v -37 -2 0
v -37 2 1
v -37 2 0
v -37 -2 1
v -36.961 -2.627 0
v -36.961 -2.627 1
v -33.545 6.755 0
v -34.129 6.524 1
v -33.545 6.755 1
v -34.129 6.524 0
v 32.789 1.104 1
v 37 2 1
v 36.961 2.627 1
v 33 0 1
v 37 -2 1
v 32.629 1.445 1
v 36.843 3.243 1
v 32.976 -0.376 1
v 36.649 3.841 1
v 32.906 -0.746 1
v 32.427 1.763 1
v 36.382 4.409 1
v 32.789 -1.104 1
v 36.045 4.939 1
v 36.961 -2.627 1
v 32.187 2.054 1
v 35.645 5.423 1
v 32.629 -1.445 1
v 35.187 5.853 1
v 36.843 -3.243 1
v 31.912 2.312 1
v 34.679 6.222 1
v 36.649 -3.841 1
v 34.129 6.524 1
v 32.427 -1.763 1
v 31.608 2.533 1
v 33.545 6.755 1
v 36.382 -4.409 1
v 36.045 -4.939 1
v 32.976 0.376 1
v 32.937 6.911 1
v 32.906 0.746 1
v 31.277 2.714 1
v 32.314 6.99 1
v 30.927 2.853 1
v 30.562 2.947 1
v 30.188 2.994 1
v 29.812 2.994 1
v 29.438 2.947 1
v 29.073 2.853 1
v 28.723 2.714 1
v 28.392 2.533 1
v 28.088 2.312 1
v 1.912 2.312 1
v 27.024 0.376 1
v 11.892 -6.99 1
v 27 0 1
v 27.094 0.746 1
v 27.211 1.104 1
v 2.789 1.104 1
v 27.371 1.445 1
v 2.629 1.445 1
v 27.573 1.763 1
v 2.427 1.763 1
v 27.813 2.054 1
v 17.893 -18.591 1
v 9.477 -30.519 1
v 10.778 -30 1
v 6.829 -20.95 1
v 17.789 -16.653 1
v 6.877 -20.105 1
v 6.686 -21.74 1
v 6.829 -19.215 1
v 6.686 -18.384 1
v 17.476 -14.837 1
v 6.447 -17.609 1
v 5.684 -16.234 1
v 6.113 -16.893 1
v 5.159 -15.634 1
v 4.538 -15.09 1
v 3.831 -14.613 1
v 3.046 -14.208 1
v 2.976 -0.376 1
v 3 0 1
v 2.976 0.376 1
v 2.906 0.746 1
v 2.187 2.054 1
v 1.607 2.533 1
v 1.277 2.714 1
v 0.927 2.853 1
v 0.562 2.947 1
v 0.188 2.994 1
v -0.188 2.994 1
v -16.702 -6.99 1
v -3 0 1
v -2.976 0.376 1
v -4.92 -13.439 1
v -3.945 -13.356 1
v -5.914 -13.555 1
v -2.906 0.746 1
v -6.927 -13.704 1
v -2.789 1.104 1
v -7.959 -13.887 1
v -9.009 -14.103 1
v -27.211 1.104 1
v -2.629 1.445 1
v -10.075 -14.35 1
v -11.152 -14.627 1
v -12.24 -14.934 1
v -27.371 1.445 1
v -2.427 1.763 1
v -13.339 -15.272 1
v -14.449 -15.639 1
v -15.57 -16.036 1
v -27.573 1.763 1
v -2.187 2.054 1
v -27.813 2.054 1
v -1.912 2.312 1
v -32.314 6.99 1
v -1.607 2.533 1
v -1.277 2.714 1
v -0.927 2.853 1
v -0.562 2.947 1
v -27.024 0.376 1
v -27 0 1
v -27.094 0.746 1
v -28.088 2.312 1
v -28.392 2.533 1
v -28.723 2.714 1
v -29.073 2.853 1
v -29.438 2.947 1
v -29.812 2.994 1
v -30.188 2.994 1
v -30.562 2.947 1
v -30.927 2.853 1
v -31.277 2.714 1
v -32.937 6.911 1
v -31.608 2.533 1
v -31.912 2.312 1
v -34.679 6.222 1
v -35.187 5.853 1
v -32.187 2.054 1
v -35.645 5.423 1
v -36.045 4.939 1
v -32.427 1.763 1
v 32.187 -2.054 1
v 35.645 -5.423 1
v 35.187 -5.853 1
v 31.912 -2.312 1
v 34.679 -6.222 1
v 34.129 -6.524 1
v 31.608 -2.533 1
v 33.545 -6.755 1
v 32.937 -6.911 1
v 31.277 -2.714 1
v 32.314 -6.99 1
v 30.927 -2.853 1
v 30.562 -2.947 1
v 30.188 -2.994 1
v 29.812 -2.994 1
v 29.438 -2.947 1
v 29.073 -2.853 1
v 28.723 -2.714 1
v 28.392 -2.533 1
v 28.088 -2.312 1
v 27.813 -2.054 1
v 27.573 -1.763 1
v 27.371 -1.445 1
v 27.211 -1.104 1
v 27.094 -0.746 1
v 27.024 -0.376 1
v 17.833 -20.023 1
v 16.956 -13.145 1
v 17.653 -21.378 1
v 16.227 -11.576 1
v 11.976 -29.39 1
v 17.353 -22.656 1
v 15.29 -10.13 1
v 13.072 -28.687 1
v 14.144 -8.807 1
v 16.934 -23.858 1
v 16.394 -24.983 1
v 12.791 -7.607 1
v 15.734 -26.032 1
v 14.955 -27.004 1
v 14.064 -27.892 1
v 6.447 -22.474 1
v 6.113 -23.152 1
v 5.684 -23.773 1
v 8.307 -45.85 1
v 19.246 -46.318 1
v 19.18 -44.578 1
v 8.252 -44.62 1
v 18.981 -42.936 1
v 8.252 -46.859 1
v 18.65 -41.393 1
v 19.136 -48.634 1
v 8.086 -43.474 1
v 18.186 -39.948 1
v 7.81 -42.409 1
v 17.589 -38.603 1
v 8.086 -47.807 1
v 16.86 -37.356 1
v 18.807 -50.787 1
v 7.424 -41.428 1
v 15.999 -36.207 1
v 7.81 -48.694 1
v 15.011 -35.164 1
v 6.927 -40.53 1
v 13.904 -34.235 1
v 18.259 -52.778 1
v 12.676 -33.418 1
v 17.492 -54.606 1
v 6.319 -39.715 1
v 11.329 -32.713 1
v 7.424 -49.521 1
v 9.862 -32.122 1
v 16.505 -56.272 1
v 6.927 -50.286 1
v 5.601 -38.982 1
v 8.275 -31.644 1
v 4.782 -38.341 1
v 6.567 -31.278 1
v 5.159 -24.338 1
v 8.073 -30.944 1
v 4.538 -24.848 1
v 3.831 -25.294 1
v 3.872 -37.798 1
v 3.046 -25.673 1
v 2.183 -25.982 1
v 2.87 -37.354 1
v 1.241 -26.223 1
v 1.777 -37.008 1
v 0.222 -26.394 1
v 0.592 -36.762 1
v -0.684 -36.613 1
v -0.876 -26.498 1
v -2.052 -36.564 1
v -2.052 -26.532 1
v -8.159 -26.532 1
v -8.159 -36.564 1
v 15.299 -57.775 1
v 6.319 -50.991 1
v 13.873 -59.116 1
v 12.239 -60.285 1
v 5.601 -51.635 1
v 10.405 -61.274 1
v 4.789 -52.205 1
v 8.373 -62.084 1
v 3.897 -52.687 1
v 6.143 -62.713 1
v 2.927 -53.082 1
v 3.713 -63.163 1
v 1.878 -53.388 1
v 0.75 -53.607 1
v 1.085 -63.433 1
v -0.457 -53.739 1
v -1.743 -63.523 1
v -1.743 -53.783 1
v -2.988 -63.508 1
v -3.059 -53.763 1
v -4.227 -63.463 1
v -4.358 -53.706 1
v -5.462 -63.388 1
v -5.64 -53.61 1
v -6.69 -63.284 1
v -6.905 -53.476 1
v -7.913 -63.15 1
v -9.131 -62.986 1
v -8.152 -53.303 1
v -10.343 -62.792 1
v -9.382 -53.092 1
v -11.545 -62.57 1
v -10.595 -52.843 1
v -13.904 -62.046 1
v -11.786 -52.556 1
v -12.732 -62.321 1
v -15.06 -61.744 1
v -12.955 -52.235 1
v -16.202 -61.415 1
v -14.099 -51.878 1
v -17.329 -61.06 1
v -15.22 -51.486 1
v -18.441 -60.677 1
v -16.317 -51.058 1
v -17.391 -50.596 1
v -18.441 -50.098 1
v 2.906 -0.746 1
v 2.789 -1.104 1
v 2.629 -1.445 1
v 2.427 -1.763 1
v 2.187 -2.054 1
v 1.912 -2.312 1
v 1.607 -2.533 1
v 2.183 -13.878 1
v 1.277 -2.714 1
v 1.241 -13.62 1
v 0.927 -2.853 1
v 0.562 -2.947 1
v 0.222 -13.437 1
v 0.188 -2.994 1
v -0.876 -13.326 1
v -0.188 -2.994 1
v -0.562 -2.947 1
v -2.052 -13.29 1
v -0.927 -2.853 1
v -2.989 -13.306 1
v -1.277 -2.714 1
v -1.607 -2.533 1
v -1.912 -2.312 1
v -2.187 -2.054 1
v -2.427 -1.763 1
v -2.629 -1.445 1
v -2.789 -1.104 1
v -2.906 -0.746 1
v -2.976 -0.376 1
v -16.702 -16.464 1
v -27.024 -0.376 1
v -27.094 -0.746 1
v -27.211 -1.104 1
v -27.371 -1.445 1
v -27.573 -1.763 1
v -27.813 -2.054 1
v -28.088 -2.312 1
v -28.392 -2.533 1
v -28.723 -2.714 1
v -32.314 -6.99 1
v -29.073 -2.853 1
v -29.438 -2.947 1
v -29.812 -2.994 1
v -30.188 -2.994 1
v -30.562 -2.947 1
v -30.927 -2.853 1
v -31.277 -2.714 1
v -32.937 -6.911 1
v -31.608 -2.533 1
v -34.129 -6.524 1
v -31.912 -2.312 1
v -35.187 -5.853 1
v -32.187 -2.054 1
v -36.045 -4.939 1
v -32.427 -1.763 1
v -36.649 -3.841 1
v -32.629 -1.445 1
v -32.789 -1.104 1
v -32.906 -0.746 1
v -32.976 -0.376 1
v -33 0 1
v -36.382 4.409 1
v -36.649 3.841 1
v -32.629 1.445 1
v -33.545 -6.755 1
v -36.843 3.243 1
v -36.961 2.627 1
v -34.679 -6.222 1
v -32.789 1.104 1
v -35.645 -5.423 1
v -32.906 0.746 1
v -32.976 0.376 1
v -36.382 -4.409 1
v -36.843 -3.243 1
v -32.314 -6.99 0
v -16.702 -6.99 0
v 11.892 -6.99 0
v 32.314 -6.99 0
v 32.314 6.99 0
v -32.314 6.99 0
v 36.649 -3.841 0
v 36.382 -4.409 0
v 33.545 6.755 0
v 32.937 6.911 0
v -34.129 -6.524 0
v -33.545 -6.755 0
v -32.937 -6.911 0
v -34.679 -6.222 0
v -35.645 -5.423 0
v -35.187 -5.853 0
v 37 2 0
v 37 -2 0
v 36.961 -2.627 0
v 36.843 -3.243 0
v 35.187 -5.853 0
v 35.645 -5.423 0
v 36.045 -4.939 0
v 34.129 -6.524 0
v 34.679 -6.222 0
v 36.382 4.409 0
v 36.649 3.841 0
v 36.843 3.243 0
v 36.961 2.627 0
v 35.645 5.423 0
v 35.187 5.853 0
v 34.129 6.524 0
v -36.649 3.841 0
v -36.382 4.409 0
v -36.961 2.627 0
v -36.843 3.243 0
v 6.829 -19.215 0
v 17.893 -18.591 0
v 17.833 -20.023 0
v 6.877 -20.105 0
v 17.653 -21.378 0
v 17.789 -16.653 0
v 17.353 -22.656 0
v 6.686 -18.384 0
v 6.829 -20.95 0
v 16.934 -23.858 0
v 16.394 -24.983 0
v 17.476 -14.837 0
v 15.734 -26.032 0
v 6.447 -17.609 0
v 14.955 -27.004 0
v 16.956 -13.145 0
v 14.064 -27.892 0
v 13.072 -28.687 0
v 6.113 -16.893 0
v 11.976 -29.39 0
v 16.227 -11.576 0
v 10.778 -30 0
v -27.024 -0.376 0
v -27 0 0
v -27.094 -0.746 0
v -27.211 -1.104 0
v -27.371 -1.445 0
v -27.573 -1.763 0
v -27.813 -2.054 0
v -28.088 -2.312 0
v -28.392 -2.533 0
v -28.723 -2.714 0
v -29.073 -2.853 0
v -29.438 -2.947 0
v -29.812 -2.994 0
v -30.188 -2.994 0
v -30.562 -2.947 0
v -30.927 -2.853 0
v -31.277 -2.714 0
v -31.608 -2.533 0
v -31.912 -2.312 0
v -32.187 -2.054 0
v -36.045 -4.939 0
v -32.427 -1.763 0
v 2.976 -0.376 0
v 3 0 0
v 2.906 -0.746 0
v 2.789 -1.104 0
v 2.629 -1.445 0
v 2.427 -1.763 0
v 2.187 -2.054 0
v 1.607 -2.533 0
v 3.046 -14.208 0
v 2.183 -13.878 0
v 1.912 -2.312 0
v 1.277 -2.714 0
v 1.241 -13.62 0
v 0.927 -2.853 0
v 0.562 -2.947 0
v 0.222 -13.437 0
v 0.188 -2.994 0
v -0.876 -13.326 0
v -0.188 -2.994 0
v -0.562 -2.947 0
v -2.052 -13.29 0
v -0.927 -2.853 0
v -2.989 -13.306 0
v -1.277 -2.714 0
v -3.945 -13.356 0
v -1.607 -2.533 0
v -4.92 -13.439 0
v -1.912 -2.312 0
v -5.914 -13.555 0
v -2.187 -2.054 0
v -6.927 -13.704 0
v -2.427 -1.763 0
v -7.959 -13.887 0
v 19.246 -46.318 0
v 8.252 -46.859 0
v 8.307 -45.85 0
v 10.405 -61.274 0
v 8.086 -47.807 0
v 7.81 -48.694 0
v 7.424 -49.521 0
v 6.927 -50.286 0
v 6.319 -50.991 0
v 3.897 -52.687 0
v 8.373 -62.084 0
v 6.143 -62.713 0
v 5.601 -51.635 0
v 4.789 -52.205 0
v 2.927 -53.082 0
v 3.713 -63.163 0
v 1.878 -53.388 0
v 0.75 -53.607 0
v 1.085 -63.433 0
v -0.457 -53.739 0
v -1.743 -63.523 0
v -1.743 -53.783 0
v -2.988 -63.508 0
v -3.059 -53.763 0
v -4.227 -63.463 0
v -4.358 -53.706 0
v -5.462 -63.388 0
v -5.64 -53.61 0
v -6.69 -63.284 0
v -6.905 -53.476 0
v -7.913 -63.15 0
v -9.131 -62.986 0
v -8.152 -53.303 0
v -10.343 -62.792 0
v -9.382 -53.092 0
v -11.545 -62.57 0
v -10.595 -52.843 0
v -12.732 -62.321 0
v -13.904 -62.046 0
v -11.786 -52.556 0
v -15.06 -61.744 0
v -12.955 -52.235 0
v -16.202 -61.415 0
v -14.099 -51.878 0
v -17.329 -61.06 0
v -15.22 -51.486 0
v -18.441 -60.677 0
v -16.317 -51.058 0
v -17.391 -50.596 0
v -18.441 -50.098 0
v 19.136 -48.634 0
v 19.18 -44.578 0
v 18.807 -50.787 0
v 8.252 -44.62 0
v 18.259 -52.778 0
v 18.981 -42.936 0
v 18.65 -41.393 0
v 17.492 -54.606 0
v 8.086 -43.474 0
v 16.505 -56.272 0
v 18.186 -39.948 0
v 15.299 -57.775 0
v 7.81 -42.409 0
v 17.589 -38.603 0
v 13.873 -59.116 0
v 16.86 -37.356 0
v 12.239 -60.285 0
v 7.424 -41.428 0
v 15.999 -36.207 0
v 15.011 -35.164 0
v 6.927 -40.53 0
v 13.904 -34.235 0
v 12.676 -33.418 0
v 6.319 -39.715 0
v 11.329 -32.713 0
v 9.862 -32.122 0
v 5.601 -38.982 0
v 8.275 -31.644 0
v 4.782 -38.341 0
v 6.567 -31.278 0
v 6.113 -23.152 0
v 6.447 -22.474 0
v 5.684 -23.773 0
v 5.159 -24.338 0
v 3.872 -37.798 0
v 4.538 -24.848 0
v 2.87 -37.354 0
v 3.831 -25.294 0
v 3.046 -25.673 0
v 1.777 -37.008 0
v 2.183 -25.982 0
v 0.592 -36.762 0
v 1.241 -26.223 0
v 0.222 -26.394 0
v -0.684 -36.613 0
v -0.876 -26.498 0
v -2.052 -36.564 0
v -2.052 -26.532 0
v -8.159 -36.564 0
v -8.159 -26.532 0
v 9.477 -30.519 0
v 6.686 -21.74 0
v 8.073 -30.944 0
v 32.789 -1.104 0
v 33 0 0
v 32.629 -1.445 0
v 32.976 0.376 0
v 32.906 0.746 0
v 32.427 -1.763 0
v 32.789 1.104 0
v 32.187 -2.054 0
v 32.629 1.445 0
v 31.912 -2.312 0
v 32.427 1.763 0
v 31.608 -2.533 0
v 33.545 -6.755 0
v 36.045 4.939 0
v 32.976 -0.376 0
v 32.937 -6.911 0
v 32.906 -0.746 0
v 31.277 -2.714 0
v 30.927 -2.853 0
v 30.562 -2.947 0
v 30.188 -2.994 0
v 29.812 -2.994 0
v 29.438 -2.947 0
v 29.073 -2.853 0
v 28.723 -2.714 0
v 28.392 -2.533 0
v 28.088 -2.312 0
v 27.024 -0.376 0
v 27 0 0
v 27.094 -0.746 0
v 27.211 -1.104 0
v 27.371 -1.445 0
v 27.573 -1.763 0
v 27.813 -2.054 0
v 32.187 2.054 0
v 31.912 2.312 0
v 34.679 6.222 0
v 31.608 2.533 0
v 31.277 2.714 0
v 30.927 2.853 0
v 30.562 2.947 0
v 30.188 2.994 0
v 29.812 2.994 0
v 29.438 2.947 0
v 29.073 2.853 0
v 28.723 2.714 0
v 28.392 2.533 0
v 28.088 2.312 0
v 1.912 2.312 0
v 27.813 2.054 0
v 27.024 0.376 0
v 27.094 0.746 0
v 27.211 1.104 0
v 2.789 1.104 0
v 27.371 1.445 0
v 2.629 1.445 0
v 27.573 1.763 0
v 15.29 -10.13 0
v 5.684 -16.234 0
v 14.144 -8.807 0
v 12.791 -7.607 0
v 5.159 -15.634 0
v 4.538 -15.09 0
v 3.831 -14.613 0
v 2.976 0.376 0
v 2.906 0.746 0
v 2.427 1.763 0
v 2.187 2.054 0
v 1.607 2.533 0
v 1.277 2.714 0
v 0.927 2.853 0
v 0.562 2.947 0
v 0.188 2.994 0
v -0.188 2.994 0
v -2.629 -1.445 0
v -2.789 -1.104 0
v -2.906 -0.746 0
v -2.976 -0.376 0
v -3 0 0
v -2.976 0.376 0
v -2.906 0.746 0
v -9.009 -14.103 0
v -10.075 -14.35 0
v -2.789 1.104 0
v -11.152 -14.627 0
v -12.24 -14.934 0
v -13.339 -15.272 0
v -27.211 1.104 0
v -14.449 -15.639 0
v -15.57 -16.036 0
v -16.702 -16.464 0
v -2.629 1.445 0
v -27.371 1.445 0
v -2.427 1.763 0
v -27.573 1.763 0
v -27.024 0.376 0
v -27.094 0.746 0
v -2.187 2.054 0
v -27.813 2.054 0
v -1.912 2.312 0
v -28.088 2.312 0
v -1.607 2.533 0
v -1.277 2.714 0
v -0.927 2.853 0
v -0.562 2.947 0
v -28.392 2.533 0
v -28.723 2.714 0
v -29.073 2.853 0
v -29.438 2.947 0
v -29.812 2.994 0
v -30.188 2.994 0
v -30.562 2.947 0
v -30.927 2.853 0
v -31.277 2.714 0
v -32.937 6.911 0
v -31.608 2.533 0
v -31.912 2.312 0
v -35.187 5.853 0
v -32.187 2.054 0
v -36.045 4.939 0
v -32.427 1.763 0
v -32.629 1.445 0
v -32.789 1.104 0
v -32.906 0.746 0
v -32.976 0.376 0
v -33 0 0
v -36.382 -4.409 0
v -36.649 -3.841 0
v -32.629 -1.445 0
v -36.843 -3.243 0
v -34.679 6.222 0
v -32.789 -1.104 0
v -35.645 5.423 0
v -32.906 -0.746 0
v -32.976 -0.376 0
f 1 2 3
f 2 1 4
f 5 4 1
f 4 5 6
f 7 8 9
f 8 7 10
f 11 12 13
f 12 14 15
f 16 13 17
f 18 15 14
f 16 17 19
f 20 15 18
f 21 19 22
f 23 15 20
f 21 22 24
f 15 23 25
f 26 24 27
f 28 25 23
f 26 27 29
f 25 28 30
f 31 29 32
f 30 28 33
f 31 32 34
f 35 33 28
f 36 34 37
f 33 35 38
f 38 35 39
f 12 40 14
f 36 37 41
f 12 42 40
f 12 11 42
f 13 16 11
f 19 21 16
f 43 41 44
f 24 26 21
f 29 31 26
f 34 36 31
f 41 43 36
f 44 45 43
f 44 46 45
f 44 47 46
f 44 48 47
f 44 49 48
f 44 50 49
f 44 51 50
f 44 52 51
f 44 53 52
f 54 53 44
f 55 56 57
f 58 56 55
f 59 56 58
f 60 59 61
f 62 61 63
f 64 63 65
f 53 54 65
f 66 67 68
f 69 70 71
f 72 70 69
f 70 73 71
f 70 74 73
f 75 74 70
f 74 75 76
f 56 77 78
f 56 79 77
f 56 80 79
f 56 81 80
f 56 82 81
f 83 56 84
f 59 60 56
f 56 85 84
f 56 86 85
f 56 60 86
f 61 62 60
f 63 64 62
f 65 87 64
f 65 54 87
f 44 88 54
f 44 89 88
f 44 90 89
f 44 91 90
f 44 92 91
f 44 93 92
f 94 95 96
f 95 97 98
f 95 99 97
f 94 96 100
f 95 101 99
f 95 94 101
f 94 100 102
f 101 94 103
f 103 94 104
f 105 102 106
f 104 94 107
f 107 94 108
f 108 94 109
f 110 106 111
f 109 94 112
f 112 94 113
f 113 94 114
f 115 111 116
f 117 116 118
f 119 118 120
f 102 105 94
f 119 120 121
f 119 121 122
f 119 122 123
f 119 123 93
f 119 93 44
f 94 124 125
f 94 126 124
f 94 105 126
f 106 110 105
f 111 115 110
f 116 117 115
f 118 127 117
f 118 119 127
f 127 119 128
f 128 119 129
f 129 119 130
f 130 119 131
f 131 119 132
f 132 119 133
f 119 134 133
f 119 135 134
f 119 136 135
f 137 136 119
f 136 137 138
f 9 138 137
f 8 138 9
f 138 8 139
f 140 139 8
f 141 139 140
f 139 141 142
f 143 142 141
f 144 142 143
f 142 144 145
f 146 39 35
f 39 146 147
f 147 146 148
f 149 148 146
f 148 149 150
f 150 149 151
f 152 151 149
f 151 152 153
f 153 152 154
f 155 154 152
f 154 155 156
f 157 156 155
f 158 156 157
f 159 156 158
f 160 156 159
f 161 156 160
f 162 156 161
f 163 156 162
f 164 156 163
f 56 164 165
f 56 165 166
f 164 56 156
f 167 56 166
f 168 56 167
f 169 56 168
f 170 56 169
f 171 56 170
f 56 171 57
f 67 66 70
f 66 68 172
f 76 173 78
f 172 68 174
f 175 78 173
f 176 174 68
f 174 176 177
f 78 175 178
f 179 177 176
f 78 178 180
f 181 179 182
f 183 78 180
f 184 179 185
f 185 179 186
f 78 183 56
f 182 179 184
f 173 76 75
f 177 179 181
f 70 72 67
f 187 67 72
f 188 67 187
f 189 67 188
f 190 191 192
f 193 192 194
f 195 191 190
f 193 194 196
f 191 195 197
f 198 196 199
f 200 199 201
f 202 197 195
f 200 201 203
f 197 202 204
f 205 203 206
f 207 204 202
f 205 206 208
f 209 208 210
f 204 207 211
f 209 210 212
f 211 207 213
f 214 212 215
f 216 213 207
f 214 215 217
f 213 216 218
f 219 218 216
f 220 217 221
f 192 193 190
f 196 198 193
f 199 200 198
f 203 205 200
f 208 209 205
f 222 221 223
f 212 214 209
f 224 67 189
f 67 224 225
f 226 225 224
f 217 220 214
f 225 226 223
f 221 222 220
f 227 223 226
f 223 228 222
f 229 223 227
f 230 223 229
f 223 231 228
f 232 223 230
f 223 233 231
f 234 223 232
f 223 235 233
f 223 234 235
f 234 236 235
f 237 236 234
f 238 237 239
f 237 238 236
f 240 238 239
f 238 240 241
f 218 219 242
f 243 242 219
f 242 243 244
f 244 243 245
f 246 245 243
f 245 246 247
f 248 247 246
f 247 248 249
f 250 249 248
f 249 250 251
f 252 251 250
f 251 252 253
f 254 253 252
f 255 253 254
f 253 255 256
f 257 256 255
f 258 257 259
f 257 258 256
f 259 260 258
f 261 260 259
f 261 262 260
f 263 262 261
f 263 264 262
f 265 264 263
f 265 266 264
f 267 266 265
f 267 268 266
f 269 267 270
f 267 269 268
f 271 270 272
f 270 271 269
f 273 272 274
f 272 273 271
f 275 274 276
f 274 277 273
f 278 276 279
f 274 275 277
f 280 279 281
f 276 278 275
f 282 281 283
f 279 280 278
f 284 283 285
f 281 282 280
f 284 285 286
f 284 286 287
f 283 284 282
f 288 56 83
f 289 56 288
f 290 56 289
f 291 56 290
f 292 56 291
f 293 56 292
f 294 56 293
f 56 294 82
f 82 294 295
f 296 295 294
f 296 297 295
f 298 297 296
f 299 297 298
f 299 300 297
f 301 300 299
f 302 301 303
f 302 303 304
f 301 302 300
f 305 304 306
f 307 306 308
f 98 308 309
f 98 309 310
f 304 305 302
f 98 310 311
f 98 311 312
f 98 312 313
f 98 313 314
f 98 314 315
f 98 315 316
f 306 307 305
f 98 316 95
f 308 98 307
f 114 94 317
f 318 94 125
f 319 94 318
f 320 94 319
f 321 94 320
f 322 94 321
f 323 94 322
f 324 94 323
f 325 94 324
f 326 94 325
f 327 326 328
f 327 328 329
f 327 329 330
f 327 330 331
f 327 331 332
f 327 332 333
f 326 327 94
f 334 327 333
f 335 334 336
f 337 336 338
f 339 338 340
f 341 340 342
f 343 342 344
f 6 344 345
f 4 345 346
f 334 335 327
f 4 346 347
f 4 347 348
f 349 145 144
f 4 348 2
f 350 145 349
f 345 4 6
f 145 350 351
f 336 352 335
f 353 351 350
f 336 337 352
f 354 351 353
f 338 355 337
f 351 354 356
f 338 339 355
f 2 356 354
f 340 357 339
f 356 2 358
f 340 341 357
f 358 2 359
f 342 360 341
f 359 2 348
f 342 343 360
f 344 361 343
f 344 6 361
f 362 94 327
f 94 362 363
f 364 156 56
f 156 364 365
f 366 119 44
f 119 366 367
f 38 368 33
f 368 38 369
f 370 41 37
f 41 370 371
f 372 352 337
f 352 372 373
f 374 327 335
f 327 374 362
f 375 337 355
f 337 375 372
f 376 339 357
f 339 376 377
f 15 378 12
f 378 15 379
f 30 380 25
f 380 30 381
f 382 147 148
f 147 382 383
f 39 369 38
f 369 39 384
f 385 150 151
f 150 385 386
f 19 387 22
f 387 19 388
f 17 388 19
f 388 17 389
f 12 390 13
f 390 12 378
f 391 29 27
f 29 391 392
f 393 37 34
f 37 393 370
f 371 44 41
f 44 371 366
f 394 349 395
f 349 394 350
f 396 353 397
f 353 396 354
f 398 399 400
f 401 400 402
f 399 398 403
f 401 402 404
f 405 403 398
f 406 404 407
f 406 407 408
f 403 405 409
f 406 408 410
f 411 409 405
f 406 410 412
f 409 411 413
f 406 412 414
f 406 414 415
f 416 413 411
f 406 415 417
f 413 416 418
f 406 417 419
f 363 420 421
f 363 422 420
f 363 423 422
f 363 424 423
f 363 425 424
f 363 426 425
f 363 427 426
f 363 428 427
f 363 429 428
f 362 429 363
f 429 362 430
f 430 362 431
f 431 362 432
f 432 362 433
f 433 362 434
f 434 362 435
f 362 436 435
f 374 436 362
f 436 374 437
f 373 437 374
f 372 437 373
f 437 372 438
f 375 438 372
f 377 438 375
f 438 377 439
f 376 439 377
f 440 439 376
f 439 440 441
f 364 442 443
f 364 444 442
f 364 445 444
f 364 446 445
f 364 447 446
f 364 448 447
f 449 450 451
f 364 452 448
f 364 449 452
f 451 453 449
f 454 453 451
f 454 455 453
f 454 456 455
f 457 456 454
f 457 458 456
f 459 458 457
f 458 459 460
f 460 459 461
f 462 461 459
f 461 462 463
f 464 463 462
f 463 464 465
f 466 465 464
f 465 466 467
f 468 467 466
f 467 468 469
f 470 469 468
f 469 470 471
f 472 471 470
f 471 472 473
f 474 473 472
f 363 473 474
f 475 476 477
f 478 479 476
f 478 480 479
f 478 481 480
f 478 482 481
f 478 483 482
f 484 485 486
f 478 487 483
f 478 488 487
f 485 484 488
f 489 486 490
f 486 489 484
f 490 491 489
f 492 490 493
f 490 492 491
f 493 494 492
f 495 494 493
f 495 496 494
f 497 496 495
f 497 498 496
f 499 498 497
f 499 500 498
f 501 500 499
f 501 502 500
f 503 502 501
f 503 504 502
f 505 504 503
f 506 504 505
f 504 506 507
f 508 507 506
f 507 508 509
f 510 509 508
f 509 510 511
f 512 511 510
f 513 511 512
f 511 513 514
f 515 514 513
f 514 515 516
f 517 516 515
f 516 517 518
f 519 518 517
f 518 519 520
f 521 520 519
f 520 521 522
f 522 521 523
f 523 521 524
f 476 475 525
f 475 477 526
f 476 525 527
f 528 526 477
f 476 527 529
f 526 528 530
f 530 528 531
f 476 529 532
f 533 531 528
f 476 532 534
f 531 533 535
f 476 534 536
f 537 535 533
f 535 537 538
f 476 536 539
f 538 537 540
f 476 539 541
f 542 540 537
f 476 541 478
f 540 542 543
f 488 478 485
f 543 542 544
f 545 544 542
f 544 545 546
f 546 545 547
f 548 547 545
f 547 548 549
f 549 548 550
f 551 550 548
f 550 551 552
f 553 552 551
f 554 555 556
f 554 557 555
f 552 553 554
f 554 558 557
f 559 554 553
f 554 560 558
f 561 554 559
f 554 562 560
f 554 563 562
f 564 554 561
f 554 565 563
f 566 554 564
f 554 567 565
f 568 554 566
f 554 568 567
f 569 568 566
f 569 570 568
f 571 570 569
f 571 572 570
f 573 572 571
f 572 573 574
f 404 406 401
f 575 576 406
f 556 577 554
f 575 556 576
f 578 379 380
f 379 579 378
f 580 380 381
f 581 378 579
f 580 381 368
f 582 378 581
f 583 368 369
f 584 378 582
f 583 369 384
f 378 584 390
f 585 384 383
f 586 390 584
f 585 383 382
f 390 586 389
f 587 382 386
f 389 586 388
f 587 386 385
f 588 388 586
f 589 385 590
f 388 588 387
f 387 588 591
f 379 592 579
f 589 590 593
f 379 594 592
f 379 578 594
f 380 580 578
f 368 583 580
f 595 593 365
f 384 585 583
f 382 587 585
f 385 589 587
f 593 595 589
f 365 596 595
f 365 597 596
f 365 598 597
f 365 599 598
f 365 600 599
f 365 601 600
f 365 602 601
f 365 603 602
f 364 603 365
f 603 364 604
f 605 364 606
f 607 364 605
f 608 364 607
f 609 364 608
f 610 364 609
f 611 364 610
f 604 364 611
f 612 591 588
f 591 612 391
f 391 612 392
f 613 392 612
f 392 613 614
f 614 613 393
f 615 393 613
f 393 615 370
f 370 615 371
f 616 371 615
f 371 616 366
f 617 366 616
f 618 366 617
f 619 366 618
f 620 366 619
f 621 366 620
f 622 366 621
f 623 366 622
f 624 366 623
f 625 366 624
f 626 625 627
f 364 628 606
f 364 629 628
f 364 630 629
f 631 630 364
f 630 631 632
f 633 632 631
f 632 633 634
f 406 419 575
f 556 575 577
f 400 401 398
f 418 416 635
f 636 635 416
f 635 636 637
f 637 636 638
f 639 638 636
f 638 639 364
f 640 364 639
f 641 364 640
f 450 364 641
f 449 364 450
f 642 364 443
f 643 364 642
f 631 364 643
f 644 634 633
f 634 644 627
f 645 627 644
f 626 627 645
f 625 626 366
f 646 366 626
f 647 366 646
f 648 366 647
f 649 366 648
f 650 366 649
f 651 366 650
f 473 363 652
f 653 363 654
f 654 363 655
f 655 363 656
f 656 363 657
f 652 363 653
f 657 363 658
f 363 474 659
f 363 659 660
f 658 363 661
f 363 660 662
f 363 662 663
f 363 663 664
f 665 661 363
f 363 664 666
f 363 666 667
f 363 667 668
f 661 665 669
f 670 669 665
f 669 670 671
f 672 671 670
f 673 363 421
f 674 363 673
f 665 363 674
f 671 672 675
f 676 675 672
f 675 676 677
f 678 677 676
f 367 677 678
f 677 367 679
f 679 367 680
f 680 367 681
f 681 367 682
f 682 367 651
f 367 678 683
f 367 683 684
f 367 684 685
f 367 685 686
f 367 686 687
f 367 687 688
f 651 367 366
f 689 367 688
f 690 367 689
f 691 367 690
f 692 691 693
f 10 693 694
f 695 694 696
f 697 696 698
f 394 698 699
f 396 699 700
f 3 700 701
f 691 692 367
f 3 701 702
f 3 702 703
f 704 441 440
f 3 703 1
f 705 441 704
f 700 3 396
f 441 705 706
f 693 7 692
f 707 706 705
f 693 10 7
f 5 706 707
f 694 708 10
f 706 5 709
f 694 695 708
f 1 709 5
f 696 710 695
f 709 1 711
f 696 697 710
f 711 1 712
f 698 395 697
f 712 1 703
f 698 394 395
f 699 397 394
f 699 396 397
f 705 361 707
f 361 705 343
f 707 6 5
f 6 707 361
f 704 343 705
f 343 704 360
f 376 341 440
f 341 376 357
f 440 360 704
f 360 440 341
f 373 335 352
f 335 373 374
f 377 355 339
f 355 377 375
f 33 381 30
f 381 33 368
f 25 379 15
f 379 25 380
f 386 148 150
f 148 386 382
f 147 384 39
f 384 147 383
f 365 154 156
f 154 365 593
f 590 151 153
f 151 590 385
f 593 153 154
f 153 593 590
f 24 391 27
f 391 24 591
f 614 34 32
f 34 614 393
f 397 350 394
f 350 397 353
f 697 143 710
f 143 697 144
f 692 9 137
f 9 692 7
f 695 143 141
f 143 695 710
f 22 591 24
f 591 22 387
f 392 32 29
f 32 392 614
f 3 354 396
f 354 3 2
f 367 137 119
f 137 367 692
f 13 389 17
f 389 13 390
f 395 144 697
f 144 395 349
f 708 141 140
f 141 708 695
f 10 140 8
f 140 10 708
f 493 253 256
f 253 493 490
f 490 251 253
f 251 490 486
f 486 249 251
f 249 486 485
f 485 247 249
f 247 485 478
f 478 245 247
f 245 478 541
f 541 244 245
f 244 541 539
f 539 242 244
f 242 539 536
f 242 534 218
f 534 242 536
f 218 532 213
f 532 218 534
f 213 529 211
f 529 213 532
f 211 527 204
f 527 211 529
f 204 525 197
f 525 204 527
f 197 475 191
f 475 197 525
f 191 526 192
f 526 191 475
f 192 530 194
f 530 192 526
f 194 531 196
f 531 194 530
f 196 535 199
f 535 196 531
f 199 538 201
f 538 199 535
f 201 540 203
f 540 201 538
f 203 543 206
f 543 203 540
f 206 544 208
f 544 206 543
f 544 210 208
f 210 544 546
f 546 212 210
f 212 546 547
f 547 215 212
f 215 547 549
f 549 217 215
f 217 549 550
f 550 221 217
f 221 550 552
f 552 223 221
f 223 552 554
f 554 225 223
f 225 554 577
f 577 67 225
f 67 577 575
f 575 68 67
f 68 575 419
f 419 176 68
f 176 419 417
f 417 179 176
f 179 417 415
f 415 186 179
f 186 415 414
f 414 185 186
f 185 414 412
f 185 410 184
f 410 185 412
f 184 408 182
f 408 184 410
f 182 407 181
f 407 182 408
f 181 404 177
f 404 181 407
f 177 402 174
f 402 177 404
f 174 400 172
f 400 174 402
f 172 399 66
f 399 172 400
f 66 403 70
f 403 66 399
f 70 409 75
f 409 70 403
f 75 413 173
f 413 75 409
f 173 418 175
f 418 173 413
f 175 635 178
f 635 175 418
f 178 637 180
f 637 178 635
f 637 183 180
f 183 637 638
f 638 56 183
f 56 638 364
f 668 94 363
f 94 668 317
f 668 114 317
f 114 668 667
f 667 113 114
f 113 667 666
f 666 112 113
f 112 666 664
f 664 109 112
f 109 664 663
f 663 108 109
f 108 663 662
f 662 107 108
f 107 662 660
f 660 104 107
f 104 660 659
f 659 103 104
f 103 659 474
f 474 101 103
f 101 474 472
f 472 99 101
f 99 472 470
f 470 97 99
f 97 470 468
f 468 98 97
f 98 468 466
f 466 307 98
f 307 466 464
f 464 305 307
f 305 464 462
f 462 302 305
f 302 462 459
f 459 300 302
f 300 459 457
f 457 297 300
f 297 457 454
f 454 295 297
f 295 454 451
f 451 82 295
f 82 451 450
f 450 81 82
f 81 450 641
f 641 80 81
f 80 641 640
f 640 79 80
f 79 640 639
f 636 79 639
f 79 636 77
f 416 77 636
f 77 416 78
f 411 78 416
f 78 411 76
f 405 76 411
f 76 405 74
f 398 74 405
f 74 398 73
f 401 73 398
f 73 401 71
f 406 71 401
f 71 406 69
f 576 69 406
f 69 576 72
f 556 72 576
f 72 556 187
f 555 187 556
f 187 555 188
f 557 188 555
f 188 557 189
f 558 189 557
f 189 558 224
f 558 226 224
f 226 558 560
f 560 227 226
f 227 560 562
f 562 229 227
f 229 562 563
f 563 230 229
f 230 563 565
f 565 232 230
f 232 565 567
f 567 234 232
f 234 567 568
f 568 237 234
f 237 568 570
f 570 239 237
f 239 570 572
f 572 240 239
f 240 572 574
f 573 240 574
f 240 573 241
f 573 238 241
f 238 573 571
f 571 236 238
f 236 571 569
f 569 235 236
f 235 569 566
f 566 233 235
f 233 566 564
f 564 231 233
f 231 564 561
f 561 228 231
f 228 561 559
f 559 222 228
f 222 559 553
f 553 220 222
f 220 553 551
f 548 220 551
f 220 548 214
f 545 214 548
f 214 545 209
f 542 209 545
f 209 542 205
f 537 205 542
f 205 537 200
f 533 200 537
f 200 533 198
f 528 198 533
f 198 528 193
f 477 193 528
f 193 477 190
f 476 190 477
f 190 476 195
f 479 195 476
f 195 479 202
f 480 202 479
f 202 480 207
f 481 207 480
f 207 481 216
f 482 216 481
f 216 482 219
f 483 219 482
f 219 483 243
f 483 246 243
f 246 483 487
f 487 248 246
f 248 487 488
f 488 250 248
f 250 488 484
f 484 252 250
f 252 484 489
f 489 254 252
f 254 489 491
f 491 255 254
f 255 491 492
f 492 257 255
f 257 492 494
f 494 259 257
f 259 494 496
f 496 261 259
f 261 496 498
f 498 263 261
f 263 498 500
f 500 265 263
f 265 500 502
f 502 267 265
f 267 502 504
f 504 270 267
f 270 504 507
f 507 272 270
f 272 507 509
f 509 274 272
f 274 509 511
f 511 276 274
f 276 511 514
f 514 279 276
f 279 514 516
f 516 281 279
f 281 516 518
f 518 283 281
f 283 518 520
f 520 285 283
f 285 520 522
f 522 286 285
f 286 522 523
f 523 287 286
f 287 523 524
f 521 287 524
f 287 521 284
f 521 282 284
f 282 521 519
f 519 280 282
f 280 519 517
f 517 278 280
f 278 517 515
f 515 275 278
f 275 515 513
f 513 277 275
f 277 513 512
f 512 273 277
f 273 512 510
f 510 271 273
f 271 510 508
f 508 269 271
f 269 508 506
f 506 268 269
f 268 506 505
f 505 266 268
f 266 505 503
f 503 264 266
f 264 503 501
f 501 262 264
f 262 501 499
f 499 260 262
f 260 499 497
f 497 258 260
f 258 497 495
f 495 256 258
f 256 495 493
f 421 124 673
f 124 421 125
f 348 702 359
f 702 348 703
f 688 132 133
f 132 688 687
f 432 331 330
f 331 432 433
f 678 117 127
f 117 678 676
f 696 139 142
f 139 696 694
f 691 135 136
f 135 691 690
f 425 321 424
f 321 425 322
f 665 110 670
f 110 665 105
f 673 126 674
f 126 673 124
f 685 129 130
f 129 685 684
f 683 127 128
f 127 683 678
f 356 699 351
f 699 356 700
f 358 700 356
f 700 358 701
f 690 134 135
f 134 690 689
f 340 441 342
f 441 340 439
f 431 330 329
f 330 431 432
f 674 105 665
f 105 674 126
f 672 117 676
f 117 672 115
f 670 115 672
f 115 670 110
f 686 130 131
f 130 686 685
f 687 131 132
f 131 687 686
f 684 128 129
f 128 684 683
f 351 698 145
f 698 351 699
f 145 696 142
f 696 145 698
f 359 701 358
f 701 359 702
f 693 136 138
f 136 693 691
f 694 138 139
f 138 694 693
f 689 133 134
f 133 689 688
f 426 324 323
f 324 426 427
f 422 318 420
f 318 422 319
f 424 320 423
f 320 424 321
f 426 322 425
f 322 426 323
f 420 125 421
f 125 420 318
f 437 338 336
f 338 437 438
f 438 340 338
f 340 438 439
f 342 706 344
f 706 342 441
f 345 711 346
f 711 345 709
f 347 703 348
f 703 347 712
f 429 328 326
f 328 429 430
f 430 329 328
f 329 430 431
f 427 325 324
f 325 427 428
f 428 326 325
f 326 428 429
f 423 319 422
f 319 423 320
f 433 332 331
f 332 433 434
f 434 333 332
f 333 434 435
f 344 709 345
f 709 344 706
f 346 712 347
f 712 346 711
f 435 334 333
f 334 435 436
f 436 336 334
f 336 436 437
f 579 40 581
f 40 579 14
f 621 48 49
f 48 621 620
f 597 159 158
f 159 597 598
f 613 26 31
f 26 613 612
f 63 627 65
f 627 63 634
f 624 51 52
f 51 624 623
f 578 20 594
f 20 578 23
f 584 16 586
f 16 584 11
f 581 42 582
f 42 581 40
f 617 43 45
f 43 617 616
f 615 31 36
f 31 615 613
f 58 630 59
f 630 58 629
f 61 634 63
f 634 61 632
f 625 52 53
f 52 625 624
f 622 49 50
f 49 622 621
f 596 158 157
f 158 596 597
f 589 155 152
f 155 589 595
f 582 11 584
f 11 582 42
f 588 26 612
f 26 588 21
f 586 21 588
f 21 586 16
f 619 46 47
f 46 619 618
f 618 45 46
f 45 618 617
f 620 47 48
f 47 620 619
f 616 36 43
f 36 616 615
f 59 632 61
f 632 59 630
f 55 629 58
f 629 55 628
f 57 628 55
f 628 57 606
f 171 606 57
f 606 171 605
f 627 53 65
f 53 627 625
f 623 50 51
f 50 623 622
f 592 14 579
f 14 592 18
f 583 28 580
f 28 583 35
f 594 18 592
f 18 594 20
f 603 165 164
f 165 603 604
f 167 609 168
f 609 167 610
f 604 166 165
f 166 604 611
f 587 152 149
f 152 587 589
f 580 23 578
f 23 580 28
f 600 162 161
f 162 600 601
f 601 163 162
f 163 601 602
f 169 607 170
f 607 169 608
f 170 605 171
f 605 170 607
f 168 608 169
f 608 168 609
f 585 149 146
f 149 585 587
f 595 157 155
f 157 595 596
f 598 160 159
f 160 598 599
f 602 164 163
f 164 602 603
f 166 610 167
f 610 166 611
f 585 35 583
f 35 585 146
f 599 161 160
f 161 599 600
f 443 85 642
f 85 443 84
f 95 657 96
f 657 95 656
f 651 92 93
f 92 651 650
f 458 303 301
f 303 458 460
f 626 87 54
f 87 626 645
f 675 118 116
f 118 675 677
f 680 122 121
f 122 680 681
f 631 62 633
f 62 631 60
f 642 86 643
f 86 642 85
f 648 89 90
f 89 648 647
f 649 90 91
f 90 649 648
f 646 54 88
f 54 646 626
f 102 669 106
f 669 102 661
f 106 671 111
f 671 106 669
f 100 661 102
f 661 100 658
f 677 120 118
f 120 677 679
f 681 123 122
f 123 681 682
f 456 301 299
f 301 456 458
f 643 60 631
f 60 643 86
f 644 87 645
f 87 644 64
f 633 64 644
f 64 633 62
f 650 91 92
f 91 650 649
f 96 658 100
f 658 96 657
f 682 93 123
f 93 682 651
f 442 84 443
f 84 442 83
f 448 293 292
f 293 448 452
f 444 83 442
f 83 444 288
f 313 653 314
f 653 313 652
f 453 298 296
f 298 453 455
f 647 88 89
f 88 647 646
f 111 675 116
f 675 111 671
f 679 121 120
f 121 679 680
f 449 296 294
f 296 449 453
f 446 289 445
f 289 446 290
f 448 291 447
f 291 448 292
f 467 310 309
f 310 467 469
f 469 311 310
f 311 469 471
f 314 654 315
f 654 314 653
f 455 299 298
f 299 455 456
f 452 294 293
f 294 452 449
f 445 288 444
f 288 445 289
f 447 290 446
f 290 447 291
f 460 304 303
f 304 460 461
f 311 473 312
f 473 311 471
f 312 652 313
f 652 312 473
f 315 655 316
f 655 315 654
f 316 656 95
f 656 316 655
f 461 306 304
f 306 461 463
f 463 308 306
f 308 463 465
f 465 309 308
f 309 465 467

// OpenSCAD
$fn = 50;


difference() {
	union() {
		translate(v = [0, 0, 0]) {
			rotate(a = [0, 0, 0]) {
				hull() {
					translate(v = [-32.0000000000, 2.0000000000, 0]) {
						rotate(a = [0, 0, 0]) {
							translate(v = [0, 0, 0]) {
								rotate(a = [0, 0, 0]) {
									cylinder(h = 1, r = 5);
								}
							}
						}
					}
					translate(v = [32.0000000000, 2.0000000000, 0]) {
						rotate(a = [0, 0, 0]) {
							translate(v = [0, 0, 0]) {
								rotate(a = [0, 0, 0]) {
									cylinder(h = 1, r = 5);
								}
							}
						}
					}
					translate(v = [-32.0000000000, -2.0000000000, 0]) {
						rotate(a = [0, 0, 0]) {
							translate(v = [0, 0, 0]) {
								rotate(a = [0, 0, 0]) {
									cylinder(h = 1, r = 5);
								}
							}
						}
					}
					translate(v = [32.0000000000, -2.0000000000, 0]) {
						rotate(a = [0, 0, 0]) {
							translate(v = [0, 0, 0]) {
								rotate(a = [0, 0, 0]) {
									cylinder(h = 1, r = 5);
								}
							}
						}
					}
				}
			}
		}
		translate(v = [0, -5, 0]) {
			rotate(a = [0, 0, 0]) {
				linear_extrude(height = 1) {
					text(font = "DejaVu Sans Mono:style=Bold", halign = "center", size = 57.0000000000, text = "3", valign = "top");
				}
			}
		}
	}
	union() {
		translate(v = [-30.0000000000, 0.0000000000, -125.0000000000]) {
			rotate(a = [0, 0, 0]) {
				cylinder(h = 250, r = 3.0000000000);
			}
		}
		translate(v = [30.0000000000, 0.0000000000, -125.0000000000]) {
			rotate(a = [0, 0, 0]) {
				cylinder(h = 250, r = 3.0000000000);
			}
		}
		translate(v = [30.0000000000, 0.0000000000, -125.0000000000]) {
			rotate(a = [0, 0, 0]) {
				cylinder(h = 250, r = 3.0000000000);
			}
		}
		translate(v = [0, 0, -125.0000000000]) {
			rotate(a = [0, 0, 0]) {
				cylinder(h = 250, r = 3.0000000000);
			}
		}
	}
}
